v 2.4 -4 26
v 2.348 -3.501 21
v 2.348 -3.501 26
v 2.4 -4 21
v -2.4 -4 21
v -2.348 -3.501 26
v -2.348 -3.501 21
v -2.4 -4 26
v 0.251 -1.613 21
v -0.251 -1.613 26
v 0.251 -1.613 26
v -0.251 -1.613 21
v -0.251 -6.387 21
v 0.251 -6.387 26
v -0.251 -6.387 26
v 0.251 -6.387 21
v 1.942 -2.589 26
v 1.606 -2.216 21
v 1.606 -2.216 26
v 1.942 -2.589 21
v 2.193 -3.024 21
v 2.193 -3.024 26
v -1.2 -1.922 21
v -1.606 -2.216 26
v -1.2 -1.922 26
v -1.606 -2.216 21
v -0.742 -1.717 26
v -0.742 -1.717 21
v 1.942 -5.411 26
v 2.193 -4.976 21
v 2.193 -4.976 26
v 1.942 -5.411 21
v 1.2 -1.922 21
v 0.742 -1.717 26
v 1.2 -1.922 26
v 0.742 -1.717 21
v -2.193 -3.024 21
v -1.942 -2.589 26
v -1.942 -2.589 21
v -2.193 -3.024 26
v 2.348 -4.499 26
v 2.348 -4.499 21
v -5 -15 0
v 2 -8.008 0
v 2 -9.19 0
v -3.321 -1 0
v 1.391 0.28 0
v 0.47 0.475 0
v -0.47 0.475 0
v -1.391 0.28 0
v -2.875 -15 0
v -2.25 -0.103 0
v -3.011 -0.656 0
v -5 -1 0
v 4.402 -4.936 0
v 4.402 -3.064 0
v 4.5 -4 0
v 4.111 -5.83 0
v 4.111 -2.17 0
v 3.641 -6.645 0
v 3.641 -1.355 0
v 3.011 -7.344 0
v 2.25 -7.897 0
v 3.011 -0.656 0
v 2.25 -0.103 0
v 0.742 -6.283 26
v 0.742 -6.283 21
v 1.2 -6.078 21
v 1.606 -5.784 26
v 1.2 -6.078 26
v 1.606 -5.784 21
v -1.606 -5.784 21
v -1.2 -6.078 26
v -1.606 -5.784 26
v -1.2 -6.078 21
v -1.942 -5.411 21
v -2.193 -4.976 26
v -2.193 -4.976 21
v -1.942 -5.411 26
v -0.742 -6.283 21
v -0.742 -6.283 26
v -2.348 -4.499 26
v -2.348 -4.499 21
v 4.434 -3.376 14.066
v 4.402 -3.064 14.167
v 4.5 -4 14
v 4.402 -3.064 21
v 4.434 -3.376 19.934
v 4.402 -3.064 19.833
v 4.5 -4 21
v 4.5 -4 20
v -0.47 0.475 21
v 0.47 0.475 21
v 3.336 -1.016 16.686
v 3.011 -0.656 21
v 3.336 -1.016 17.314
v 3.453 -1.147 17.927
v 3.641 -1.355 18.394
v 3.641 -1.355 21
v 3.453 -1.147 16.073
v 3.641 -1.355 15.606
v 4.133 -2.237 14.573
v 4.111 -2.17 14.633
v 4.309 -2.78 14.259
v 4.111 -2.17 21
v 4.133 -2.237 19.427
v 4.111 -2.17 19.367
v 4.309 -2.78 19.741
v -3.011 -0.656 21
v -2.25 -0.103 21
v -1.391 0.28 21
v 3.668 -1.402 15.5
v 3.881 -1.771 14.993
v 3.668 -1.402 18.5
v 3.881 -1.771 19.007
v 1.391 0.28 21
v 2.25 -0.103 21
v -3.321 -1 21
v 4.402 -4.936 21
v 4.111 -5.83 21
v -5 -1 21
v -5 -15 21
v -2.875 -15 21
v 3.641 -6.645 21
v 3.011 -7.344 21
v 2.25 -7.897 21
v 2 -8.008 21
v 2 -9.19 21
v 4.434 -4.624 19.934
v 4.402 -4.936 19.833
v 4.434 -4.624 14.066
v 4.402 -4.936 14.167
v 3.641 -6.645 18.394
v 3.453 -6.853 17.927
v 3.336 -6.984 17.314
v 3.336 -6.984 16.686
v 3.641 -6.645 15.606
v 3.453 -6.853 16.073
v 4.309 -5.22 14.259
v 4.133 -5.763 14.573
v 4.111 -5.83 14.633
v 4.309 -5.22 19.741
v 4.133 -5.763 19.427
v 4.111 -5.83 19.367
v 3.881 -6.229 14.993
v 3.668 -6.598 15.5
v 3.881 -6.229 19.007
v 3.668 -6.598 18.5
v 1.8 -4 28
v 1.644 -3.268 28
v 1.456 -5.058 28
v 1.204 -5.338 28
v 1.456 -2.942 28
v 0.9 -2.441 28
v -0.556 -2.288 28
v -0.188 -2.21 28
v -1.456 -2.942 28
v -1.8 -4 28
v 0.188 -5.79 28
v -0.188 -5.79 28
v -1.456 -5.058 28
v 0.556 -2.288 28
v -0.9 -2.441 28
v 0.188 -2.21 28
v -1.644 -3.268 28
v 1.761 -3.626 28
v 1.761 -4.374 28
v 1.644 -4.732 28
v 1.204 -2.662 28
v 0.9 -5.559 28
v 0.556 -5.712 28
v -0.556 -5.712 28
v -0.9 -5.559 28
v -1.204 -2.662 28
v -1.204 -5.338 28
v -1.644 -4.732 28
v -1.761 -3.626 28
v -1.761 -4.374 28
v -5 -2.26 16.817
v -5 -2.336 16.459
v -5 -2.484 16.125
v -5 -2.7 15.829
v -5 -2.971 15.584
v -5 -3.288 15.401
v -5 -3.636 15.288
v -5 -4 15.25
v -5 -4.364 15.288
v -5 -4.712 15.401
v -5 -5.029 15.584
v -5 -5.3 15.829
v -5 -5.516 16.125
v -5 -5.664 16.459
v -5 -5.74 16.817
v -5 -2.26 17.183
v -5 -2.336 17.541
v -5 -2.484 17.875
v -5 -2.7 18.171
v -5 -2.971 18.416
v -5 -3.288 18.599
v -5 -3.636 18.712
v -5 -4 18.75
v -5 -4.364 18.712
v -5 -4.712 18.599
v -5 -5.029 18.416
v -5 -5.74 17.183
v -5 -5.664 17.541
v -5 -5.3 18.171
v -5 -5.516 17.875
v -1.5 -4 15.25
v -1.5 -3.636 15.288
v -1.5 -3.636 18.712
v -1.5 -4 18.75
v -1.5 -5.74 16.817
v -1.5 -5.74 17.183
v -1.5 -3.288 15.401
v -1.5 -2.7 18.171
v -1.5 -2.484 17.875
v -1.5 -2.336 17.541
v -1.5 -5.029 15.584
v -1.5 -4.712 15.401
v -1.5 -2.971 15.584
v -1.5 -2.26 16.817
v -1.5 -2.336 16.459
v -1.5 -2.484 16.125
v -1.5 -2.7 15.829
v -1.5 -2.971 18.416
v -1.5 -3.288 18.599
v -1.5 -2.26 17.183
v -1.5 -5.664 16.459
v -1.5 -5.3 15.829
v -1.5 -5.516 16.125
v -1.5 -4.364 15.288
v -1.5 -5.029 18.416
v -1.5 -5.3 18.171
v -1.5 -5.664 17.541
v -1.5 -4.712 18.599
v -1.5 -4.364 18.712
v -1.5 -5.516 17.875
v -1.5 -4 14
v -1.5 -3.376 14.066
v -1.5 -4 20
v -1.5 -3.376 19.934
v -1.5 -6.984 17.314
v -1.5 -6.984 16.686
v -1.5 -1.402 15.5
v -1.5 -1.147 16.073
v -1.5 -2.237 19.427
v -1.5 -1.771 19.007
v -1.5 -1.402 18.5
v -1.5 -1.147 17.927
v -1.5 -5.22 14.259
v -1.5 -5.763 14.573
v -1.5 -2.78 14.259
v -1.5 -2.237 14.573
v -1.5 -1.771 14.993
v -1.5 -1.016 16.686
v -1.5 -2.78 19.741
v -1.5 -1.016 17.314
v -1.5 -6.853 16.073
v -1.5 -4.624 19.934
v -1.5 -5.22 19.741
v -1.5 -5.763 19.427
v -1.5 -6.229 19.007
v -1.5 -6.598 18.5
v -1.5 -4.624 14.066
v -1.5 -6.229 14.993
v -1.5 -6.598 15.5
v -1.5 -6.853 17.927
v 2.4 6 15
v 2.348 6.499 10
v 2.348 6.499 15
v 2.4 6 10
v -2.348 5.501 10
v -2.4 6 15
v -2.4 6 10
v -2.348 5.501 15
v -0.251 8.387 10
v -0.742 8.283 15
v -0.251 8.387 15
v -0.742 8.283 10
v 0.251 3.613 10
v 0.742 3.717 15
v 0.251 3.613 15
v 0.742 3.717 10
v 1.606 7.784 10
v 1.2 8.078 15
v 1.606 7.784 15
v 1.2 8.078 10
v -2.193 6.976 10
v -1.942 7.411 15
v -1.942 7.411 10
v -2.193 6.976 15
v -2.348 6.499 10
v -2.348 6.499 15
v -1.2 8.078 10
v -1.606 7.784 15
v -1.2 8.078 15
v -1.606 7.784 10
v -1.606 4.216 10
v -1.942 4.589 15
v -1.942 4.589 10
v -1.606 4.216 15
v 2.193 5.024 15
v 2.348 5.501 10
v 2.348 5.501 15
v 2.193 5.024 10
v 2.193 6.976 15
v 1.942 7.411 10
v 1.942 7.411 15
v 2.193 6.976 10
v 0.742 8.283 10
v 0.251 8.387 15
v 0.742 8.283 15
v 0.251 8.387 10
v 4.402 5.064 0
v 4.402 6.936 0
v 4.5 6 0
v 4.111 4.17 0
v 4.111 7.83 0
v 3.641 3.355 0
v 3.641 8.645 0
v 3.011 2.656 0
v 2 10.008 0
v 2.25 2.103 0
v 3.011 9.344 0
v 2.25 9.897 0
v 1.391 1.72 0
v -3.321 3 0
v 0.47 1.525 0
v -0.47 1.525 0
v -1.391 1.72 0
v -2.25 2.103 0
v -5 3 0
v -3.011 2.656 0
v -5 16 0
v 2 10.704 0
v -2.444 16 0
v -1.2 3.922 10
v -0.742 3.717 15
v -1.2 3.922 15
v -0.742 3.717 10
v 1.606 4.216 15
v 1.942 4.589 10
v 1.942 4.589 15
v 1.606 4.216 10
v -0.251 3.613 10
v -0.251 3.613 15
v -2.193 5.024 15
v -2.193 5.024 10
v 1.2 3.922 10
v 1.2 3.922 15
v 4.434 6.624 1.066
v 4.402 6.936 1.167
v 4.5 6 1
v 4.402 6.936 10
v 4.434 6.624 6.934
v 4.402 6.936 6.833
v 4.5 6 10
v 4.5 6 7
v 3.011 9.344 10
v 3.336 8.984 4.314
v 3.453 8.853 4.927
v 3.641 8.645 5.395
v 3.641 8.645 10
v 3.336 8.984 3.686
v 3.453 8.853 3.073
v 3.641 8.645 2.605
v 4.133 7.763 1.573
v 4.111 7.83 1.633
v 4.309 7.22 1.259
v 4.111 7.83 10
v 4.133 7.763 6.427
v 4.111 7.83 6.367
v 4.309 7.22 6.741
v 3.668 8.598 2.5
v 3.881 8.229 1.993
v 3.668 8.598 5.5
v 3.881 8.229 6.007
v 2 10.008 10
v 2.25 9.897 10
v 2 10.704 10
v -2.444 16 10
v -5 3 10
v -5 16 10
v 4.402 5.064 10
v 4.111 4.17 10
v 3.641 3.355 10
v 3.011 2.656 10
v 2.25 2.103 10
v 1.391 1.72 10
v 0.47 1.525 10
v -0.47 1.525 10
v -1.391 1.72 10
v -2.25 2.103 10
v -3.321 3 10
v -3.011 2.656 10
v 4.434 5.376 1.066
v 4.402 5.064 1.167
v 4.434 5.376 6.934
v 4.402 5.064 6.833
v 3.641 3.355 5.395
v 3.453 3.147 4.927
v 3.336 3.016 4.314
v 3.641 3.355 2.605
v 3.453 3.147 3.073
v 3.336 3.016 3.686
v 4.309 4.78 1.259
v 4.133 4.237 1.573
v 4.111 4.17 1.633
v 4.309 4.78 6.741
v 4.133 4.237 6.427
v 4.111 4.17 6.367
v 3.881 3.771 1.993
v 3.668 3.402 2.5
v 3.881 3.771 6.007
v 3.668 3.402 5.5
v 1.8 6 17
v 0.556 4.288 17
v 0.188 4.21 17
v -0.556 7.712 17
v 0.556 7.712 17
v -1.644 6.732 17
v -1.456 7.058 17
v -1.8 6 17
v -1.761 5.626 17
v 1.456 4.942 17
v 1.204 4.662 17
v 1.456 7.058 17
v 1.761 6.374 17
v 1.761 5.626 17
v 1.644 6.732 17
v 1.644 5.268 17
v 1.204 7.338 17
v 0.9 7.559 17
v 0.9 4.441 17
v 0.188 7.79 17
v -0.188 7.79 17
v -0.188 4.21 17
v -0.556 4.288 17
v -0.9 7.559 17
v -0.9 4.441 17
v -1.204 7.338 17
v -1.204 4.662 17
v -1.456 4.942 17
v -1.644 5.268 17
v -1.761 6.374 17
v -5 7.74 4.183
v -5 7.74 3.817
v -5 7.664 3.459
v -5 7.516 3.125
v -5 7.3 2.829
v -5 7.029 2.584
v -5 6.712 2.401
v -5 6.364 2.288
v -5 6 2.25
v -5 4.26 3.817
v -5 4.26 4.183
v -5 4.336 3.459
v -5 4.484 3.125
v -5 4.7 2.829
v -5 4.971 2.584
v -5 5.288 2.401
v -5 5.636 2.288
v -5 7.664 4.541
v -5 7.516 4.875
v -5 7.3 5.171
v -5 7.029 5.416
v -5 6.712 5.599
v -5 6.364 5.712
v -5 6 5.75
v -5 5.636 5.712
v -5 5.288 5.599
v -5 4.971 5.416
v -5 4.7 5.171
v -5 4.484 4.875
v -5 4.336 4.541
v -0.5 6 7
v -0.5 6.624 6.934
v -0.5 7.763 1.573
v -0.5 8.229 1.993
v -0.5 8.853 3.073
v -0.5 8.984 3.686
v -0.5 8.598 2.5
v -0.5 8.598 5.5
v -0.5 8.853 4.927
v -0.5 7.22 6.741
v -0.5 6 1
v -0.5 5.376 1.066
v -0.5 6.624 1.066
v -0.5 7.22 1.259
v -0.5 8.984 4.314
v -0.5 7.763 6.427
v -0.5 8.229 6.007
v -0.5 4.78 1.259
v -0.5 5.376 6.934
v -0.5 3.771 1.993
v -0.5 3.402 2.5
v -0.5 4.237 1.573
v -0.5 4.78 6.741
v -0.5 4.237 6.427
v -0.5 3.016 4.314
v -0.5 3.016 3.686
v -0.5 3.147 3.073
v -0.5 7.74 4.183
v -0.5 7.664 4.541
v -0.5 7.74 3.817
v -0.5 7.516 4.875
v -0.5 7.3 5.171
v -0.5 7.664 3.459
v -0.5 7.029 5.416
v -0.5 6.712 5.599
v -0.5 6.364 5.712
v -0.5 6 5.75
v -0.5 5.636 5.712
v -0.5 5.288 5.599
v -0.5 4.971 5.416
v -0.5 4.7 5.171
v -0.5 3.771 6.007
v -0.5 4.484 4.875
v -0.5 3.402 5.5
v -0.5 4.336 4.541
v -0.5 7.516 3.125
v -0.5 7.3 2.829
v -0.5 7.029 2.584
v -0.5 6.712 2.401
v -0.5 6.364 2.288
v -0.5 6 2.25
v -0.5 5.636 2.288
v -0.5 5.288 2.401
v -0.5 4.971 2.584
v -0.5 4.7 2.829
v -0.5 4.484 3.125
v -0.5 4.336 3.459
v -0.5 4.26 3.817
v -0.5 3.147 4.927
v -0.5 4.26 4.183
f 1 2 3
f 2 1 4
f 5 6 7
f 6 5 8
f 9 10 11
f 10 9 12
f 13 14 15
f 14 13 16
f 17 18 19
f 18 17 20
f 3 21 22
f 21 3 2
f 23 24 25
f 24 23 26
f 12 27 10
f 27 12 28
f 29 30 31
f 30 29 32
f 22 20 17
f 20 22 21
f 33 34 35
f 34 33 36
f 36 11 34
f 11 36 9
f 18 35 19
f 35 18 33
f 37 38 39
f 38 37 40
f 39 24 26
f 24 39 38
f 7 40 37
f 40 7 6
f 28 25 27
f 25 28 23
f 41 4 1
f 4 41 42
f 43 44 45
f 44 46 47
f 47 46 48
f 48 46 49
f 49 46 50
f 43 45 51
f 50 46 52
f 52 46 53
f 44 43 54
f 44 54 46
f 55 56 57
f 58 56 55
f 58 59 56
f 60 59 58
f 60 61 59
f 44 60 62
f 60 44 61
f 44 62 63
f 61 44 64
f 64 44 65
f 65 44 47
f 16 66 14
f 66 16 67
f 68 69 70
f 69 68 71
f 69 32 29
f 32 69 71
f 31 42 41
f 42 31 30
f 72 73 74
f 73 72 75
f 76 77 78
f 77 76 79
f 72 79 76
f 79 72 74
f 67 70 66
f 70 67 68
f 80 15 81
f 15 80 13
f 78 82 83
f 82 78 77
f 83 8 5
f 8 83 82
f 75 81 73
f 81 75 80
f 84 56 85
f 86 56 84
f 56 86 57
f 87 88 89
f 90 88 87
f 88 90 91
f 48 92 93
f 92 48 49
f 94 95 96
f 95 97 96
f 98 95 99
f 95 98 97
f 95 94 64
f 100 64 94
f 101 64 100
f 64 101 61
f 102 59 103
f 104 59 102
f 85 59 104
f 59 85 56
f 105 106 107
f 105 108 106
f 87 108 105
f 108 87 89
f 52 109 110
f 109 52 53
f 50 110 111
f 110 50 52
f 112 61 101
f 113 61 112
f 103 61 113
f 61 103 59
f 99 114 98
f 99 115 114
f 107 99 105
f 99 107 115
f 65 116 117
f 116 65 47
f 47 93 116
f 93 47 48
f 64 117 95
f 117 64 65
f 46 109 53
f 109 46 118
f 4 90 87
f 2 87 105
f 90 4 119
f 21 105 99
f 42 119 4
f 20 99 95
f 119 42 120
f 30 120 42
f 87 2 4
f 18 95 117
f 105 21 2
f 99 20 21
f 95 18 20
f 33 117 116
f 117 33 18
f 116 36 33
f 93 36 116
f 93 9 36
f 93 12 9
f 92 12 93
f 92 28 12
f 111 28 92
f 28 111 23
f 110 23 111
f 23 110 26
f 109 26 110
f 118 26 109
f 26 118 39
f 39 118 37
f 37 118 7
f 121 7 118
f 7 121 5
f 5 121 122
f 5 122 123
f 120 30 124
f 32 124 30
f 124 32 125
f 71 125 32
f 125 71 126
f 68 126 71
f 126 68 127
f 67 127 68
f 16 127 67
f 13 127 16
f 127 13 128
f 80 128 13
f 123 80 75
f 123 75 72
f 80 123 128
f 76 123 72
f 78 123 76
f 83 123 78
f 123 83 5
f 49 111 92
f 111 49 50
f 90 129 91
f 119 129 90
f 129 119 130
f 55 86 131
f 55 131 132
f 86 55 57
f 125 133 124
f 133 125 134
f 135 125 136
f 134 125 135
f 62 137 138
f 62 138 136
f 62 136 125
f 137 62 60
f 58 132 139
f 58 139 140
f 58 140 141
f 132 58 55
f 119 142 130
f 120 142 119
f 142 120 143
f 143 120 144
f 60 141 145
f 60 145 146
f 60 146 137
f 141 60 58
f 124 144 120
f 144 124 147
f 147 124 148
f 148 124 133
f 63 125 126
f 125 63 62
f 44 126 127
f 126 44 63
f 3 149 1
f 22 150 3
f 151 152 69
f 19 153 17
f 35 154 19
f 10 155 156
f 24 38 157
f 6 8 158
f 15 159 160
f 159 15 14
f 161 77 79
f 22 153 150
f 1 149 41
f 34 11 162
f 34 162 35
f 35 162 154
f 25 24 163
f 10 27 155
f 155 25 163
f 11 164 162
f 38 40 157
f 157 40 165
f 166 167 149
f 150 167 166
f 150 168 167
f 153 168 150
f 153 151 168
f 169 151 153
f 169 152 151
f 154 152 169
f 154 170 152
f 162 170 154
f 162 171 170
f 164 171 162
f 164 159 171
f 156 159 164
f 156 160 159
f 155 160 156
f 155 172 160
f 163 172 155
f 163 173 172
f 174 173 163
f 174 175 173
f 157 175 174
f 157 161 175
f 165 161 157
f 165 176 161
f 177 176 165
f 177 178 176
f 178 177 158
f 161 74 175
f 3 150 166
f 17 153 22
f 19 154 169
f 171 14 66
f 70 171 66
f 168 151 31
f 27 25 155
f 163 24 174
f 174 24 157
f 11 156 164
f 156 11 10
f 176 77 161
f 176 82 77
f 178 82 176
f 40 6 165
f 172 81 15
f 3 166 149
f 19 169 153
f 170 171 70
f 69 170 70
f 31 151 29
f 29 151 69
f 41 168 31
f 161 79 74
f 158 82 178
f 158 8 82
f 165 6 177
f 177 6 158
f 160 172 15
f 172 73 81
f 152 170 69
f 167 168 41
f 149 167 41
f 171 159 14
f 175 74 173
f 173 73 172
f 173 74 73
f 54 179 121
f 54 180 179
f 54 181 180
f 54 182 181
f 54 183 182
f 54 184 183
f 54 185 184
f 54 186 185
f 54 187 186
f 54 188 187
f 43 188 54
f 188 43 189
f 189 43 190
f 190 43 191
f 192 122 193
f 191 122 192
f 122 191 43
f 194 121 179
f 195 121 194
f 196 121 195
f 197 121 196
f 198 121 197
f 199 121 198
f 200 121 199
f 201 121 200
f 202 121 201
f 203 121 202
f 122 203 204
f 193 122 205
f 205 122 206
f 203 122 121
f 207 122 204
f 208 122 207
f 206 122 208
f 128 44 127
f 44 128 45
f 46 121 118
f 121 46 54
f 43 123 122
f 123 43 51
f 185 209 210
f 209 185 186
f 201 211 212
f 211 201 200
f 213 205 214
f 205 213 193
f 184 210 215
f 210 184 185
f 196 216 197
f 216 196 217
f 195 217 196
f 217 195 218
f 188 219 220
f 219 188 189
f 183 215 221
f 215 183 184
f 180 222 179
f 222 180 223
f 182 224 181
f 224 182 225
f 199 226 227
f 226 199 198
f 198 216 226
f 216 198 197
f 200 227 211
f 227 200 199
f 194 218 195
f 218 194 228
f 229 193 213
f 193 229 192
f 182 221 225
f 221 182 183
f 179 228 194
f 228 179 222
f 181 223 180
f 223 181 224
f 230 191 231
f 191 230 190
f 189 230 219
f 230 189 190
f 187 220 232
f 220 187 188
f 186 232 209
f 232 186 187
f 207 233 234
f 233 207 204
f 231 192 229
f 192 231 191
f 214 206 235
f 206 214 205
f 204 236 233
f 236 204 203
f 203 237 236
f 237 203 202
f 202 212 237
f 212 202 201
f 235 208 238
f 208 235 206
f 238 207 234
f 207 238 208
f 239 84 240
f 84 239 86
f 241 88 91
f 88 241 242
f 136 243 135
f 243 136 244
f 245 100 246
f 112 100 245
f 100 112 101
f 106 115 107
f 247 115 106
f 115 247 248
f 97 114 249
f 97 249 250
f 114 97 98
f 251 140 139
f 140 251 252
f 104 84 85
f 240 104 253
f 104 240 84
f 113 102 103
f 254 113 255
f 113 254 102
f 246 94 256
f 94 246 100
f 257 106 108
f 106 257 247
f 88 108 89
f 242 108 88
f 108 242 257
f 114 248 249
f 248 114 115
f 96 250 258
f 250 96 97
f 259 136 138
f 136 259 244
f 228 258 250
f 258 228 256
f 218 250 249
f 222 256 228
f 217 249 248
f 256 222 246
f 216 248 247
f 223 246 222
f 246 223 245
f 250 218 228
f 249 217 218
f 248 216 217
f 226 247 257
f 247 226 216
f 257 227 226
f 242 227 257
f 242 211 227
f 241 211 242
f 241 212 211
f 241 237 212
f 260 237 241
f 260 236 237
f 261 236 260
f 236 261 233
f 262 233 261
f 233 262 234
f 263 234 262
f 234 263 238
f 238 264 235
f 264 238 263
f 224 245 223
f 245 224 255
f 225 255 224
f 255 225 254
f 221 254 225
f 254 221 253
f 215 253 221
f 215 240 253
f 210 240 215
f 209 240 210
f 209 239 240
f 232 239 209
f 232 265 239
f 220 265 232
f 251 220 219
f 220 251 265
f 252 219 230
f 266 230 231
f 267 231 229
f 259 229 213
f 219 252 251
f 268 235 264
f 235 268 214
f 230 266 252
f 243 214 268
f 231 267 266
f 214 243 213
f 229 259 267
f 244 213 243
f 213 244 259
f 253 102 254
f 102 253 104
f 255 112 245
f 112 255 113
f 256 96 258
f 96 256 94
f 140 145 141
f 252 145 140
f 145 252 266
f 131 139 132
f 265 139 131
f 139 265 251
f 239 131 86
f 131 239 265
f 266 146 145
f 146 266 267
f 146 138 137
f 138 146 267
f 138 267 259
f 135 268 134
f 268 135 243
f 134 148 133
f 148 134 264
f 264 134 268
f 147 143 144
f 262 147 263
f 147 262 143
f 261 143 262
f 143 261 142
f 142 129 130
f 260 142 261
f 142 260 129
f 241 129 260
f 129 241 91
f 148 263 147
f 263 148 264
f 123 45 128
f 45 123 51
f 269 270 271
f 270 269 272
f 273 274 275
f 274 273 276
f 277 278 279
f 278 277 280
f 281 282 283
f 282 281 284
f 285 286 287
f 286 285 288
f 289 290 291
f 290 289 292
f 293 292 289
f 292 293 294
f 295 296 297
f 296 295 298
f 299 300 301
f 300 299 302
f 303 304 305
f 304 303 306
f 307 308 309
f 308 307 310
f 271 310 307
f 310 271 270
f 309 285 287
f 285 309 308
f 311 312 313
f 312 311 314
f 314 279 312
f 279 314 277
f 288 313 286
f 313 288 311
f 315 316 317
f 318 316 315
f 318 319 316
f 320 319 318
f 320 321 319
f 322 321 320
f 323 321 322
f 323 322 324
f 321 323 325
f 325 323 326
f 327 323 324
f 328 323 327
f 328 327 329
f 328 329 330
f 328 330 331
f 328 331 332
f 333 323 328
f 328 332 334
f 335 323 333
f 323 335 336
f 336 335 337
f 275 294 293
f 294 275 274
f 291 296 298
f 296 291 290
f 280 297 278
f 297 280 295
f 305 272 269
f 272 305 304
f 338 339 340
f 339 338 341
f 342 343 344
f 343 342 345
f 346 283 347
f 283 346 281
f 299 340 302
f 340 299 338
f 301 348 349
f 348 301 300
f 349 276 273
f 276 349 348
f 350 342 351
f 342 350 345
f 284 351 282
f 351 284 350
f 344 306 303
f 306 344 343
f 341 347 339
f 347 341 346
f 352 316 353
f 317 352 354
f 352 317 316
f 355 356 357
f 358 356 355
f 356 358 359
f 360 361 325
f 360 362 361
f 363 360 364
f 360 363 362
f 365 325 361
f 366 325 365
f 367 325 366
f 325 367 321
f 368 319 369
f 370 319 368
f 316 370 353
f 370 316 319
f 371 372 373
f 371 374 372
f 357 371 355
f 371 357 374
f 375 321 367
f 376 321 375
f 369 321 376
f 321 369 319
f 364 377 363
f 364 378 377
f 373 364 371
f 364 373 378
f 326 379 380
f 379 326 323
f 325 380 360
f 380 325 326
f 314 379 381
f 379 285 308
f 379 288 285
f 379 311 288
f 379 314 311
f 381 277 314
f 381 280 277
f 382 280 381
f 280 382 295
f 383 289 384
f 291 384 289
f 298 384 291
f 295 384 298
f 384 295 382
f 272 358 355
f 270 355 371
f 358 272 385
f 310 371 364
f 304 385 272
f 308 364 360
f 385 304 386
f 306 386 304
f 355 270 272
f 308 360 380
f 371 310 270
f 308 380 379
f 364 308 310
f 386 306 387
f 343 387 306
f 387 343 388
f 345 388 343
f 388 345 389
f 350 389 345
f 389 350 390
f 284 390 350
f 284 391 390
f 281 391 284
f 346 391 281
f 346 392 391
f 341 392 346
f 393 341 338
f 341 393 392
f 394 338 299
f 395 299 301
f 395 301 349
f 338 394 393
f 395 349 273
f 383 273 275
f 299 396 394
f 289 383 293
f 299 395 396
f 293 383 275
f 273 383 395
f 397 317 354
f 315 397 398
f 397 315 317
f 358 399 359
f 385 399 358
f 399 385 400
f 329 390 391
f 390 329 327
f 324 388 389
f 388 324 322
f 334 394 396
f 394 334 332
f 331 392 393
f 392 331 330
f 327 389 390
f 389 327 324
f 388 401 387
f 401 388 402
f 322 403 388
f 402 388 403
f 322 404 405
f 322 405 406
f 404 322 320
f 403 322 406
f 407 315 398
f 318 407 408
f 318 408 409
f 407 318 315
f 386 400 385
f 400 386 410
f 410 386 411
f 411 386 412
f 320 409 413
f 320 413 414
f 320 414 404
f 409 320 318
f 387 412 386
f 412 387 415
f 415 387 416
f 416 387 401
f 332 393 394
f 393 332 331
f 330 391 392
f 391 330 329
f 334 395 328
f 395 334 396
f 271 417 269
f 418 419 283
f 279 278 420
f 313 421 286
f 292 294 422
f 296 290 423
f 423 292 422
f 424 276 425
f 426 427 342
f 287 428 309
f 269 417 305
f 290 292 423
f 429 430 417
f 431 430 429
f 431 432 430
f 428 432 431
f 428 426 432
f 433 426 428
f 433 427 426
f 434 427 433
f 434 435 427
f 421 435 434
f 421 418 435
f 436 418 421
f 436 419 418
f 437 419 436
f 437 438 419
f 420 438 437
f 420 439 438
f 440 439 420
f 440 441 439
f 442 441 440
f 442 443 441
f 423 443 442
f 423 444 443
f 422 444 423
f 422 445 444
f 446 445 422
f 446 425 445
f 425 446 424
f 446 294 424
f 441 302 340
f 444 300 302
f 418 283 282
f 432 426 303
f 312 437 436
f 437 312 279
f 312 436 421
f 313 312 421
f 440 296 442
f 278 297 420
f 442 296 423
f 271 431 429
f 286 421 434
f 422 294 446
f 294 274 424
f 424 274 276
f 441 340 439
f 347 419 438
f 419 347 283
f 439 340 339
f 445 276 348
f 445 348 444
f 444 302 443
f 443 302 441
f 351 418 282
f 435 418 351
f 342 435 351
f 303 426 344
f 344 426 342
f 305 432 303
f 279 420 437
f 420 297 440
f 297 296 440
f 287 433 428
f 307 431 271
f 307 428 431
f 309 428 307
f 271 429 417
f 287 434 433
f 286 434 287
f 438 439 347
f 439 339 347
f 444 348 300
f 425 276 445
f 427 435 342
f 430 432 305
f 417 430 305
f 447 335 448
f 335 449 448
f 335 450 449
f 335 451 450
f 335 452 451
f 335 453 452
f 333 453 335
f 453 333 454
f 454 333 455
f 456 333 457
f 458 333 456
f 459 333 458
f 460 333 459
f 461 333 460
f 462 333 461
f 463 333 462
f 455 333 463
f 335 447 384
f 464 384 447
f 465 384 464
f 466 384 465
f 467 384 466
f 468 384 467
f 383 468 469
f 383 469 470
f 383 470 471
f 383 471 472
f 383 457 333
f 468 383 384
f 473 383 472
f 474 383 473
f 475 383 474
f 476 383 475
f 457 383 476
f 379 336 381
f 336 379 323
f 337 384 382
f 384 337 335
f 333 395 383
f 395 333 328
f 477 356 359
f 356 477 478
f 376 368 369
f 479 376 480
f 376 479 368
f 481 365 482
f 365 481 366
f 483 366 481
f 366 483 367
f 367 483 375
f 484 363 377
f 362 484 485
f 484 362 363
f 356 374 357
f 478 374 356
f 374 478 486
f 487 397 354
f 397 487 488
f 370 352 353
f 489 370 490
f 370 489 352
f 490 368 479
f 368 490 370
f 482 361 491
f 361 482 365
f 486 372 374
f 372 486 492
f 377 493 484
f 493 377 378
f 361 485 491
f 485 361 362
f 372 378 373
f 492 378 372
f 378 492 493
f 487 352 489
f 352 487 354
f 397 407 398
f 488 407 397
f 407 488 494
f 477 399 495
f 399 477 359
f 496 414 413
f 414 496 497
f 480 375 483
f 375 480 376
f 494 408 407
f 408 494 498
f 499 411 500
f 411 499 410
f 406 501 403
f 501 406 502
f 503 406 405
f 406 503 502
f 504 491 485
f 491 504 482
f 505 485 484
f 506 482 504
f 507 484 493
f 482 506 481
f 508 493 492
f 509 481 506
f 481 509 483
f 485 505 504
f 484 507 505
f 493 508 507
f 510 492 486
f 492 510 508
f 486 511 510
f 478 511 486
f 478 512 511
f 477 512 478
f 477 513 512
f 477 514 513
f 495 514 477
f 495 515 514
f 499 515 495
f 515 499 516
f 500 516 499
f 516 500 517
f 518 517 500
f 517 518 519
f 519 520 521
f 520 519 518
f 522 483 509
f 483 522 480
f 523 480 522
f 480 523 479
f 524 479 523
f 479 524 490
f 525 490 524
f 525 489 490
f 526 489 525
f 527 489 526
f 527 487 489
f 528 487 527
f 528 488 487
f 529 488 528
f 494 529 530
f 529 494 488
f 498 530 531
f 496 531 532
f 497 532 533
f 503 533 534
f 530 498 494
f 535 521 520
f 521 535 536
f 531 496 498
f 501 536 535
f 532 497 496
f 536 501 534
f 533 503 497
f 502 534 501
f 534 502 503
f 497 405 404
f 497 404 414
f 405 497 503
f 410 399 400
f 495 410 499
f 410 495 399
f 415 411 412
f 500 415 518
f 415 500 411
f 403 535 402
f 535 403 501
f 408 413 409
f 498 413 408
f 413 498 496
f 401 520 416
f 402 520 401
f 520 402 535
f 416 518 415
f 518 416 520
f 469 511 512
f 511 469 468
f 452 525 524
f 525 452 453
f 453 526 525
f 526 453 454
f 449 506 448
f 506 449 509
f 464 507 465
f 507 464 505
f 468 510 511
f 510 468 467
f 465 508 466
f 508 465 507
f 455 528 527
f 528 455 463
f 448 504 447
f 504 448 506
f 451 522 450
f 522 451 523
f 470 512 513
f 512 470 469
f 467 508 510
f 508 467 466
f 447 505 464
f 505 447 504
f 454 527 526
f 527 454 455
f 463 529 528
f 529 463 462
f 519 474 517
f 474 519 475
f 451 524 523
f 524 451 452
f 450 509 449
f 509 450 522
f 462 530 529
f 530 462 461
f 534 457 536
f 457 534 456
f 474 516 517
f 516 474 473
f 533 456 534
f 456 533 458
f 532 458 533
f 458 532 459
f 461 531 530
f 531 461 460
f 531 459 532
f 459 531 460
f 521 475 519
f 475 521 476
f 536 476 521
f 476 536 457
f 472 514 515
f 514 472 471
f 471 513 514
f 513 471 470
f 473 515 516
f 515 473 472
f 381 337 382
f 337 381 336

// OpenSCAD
// PRUSA iteration4
// RAMBo cover hinges
// GNU GPL v3
// Josef Průša <iam@josefprusa.cz> and contributors
// http://www.reprap.org/wiki/Prusa_Mendel
// http://prusamendel.org

module upper_hinge()
{
difference()    
    {
        union()
        {
             // body
             cylinder( h = 26, r = 2.4, $fn=30); 
             cylinder( h = 21, r = 4.5, $fn=30); 
             translate([0,0,26]) cylinder( h = 2, r1 = 2.4, r2 = 1.8, $fn=30); 
             translate( [ -5 , -11 , 0 ] ) cube( [ 7 , 14 , 21 ] );  
        }
        // M3 screw hole
        translate( [ -12.5 , -0 , 17 ] ) rotate( [0,90,0] ) cylinder( h = 20, r = 1.75, $fn=30);  
        translate( [ -1.5 , -0 , 17 ] ) rotate( [0,90,0] ) cylinder( h = 9, r = 3, $fn=30); 
        // angle cut
        translate([-3.9,-20,-1]) rotate([0,0,50]) cube([25,5,26]);   
    }
}

module lower_hinge()
{
difference()
    {   
        union()
        { 
            // body   
            translate( [ 0 , 6 , 0 ] ) cylinder( h = 15, r = 2.4, $fn=30); 
            translate( [ 0 , 6 , 0 ] ) cylinder( h = 10, r = 4.5, $fn=30);  
            translate( [ 0 , 6 , 15 ] ) cylinder( h = 2, r1 = 2.4, r2=1.8, $fn=30);  
            translate( [ -5 , 3 , 0 ] ) cube( [ 7 , 13 , 10 ] ); 
        }
        // M3 screw
        translate( [ -0.5 , 6 , 4 ] ) rotate( [0,90,0] ) cylinder( h = 20, r = 3, $fn=30); 
        translate( [ -12 , 6 , 4 ] ) rotate( [0,90,0] ) cylinder( h = 20, r = 1.75, $fn=30); 
        // angle cut
        translate([-5.8,20,-1]) rotate([0,0,-50]) cube([20,5,20]);   
    }
}


translate([0,-4,0]) upper_hinge();
lower_hinge();
